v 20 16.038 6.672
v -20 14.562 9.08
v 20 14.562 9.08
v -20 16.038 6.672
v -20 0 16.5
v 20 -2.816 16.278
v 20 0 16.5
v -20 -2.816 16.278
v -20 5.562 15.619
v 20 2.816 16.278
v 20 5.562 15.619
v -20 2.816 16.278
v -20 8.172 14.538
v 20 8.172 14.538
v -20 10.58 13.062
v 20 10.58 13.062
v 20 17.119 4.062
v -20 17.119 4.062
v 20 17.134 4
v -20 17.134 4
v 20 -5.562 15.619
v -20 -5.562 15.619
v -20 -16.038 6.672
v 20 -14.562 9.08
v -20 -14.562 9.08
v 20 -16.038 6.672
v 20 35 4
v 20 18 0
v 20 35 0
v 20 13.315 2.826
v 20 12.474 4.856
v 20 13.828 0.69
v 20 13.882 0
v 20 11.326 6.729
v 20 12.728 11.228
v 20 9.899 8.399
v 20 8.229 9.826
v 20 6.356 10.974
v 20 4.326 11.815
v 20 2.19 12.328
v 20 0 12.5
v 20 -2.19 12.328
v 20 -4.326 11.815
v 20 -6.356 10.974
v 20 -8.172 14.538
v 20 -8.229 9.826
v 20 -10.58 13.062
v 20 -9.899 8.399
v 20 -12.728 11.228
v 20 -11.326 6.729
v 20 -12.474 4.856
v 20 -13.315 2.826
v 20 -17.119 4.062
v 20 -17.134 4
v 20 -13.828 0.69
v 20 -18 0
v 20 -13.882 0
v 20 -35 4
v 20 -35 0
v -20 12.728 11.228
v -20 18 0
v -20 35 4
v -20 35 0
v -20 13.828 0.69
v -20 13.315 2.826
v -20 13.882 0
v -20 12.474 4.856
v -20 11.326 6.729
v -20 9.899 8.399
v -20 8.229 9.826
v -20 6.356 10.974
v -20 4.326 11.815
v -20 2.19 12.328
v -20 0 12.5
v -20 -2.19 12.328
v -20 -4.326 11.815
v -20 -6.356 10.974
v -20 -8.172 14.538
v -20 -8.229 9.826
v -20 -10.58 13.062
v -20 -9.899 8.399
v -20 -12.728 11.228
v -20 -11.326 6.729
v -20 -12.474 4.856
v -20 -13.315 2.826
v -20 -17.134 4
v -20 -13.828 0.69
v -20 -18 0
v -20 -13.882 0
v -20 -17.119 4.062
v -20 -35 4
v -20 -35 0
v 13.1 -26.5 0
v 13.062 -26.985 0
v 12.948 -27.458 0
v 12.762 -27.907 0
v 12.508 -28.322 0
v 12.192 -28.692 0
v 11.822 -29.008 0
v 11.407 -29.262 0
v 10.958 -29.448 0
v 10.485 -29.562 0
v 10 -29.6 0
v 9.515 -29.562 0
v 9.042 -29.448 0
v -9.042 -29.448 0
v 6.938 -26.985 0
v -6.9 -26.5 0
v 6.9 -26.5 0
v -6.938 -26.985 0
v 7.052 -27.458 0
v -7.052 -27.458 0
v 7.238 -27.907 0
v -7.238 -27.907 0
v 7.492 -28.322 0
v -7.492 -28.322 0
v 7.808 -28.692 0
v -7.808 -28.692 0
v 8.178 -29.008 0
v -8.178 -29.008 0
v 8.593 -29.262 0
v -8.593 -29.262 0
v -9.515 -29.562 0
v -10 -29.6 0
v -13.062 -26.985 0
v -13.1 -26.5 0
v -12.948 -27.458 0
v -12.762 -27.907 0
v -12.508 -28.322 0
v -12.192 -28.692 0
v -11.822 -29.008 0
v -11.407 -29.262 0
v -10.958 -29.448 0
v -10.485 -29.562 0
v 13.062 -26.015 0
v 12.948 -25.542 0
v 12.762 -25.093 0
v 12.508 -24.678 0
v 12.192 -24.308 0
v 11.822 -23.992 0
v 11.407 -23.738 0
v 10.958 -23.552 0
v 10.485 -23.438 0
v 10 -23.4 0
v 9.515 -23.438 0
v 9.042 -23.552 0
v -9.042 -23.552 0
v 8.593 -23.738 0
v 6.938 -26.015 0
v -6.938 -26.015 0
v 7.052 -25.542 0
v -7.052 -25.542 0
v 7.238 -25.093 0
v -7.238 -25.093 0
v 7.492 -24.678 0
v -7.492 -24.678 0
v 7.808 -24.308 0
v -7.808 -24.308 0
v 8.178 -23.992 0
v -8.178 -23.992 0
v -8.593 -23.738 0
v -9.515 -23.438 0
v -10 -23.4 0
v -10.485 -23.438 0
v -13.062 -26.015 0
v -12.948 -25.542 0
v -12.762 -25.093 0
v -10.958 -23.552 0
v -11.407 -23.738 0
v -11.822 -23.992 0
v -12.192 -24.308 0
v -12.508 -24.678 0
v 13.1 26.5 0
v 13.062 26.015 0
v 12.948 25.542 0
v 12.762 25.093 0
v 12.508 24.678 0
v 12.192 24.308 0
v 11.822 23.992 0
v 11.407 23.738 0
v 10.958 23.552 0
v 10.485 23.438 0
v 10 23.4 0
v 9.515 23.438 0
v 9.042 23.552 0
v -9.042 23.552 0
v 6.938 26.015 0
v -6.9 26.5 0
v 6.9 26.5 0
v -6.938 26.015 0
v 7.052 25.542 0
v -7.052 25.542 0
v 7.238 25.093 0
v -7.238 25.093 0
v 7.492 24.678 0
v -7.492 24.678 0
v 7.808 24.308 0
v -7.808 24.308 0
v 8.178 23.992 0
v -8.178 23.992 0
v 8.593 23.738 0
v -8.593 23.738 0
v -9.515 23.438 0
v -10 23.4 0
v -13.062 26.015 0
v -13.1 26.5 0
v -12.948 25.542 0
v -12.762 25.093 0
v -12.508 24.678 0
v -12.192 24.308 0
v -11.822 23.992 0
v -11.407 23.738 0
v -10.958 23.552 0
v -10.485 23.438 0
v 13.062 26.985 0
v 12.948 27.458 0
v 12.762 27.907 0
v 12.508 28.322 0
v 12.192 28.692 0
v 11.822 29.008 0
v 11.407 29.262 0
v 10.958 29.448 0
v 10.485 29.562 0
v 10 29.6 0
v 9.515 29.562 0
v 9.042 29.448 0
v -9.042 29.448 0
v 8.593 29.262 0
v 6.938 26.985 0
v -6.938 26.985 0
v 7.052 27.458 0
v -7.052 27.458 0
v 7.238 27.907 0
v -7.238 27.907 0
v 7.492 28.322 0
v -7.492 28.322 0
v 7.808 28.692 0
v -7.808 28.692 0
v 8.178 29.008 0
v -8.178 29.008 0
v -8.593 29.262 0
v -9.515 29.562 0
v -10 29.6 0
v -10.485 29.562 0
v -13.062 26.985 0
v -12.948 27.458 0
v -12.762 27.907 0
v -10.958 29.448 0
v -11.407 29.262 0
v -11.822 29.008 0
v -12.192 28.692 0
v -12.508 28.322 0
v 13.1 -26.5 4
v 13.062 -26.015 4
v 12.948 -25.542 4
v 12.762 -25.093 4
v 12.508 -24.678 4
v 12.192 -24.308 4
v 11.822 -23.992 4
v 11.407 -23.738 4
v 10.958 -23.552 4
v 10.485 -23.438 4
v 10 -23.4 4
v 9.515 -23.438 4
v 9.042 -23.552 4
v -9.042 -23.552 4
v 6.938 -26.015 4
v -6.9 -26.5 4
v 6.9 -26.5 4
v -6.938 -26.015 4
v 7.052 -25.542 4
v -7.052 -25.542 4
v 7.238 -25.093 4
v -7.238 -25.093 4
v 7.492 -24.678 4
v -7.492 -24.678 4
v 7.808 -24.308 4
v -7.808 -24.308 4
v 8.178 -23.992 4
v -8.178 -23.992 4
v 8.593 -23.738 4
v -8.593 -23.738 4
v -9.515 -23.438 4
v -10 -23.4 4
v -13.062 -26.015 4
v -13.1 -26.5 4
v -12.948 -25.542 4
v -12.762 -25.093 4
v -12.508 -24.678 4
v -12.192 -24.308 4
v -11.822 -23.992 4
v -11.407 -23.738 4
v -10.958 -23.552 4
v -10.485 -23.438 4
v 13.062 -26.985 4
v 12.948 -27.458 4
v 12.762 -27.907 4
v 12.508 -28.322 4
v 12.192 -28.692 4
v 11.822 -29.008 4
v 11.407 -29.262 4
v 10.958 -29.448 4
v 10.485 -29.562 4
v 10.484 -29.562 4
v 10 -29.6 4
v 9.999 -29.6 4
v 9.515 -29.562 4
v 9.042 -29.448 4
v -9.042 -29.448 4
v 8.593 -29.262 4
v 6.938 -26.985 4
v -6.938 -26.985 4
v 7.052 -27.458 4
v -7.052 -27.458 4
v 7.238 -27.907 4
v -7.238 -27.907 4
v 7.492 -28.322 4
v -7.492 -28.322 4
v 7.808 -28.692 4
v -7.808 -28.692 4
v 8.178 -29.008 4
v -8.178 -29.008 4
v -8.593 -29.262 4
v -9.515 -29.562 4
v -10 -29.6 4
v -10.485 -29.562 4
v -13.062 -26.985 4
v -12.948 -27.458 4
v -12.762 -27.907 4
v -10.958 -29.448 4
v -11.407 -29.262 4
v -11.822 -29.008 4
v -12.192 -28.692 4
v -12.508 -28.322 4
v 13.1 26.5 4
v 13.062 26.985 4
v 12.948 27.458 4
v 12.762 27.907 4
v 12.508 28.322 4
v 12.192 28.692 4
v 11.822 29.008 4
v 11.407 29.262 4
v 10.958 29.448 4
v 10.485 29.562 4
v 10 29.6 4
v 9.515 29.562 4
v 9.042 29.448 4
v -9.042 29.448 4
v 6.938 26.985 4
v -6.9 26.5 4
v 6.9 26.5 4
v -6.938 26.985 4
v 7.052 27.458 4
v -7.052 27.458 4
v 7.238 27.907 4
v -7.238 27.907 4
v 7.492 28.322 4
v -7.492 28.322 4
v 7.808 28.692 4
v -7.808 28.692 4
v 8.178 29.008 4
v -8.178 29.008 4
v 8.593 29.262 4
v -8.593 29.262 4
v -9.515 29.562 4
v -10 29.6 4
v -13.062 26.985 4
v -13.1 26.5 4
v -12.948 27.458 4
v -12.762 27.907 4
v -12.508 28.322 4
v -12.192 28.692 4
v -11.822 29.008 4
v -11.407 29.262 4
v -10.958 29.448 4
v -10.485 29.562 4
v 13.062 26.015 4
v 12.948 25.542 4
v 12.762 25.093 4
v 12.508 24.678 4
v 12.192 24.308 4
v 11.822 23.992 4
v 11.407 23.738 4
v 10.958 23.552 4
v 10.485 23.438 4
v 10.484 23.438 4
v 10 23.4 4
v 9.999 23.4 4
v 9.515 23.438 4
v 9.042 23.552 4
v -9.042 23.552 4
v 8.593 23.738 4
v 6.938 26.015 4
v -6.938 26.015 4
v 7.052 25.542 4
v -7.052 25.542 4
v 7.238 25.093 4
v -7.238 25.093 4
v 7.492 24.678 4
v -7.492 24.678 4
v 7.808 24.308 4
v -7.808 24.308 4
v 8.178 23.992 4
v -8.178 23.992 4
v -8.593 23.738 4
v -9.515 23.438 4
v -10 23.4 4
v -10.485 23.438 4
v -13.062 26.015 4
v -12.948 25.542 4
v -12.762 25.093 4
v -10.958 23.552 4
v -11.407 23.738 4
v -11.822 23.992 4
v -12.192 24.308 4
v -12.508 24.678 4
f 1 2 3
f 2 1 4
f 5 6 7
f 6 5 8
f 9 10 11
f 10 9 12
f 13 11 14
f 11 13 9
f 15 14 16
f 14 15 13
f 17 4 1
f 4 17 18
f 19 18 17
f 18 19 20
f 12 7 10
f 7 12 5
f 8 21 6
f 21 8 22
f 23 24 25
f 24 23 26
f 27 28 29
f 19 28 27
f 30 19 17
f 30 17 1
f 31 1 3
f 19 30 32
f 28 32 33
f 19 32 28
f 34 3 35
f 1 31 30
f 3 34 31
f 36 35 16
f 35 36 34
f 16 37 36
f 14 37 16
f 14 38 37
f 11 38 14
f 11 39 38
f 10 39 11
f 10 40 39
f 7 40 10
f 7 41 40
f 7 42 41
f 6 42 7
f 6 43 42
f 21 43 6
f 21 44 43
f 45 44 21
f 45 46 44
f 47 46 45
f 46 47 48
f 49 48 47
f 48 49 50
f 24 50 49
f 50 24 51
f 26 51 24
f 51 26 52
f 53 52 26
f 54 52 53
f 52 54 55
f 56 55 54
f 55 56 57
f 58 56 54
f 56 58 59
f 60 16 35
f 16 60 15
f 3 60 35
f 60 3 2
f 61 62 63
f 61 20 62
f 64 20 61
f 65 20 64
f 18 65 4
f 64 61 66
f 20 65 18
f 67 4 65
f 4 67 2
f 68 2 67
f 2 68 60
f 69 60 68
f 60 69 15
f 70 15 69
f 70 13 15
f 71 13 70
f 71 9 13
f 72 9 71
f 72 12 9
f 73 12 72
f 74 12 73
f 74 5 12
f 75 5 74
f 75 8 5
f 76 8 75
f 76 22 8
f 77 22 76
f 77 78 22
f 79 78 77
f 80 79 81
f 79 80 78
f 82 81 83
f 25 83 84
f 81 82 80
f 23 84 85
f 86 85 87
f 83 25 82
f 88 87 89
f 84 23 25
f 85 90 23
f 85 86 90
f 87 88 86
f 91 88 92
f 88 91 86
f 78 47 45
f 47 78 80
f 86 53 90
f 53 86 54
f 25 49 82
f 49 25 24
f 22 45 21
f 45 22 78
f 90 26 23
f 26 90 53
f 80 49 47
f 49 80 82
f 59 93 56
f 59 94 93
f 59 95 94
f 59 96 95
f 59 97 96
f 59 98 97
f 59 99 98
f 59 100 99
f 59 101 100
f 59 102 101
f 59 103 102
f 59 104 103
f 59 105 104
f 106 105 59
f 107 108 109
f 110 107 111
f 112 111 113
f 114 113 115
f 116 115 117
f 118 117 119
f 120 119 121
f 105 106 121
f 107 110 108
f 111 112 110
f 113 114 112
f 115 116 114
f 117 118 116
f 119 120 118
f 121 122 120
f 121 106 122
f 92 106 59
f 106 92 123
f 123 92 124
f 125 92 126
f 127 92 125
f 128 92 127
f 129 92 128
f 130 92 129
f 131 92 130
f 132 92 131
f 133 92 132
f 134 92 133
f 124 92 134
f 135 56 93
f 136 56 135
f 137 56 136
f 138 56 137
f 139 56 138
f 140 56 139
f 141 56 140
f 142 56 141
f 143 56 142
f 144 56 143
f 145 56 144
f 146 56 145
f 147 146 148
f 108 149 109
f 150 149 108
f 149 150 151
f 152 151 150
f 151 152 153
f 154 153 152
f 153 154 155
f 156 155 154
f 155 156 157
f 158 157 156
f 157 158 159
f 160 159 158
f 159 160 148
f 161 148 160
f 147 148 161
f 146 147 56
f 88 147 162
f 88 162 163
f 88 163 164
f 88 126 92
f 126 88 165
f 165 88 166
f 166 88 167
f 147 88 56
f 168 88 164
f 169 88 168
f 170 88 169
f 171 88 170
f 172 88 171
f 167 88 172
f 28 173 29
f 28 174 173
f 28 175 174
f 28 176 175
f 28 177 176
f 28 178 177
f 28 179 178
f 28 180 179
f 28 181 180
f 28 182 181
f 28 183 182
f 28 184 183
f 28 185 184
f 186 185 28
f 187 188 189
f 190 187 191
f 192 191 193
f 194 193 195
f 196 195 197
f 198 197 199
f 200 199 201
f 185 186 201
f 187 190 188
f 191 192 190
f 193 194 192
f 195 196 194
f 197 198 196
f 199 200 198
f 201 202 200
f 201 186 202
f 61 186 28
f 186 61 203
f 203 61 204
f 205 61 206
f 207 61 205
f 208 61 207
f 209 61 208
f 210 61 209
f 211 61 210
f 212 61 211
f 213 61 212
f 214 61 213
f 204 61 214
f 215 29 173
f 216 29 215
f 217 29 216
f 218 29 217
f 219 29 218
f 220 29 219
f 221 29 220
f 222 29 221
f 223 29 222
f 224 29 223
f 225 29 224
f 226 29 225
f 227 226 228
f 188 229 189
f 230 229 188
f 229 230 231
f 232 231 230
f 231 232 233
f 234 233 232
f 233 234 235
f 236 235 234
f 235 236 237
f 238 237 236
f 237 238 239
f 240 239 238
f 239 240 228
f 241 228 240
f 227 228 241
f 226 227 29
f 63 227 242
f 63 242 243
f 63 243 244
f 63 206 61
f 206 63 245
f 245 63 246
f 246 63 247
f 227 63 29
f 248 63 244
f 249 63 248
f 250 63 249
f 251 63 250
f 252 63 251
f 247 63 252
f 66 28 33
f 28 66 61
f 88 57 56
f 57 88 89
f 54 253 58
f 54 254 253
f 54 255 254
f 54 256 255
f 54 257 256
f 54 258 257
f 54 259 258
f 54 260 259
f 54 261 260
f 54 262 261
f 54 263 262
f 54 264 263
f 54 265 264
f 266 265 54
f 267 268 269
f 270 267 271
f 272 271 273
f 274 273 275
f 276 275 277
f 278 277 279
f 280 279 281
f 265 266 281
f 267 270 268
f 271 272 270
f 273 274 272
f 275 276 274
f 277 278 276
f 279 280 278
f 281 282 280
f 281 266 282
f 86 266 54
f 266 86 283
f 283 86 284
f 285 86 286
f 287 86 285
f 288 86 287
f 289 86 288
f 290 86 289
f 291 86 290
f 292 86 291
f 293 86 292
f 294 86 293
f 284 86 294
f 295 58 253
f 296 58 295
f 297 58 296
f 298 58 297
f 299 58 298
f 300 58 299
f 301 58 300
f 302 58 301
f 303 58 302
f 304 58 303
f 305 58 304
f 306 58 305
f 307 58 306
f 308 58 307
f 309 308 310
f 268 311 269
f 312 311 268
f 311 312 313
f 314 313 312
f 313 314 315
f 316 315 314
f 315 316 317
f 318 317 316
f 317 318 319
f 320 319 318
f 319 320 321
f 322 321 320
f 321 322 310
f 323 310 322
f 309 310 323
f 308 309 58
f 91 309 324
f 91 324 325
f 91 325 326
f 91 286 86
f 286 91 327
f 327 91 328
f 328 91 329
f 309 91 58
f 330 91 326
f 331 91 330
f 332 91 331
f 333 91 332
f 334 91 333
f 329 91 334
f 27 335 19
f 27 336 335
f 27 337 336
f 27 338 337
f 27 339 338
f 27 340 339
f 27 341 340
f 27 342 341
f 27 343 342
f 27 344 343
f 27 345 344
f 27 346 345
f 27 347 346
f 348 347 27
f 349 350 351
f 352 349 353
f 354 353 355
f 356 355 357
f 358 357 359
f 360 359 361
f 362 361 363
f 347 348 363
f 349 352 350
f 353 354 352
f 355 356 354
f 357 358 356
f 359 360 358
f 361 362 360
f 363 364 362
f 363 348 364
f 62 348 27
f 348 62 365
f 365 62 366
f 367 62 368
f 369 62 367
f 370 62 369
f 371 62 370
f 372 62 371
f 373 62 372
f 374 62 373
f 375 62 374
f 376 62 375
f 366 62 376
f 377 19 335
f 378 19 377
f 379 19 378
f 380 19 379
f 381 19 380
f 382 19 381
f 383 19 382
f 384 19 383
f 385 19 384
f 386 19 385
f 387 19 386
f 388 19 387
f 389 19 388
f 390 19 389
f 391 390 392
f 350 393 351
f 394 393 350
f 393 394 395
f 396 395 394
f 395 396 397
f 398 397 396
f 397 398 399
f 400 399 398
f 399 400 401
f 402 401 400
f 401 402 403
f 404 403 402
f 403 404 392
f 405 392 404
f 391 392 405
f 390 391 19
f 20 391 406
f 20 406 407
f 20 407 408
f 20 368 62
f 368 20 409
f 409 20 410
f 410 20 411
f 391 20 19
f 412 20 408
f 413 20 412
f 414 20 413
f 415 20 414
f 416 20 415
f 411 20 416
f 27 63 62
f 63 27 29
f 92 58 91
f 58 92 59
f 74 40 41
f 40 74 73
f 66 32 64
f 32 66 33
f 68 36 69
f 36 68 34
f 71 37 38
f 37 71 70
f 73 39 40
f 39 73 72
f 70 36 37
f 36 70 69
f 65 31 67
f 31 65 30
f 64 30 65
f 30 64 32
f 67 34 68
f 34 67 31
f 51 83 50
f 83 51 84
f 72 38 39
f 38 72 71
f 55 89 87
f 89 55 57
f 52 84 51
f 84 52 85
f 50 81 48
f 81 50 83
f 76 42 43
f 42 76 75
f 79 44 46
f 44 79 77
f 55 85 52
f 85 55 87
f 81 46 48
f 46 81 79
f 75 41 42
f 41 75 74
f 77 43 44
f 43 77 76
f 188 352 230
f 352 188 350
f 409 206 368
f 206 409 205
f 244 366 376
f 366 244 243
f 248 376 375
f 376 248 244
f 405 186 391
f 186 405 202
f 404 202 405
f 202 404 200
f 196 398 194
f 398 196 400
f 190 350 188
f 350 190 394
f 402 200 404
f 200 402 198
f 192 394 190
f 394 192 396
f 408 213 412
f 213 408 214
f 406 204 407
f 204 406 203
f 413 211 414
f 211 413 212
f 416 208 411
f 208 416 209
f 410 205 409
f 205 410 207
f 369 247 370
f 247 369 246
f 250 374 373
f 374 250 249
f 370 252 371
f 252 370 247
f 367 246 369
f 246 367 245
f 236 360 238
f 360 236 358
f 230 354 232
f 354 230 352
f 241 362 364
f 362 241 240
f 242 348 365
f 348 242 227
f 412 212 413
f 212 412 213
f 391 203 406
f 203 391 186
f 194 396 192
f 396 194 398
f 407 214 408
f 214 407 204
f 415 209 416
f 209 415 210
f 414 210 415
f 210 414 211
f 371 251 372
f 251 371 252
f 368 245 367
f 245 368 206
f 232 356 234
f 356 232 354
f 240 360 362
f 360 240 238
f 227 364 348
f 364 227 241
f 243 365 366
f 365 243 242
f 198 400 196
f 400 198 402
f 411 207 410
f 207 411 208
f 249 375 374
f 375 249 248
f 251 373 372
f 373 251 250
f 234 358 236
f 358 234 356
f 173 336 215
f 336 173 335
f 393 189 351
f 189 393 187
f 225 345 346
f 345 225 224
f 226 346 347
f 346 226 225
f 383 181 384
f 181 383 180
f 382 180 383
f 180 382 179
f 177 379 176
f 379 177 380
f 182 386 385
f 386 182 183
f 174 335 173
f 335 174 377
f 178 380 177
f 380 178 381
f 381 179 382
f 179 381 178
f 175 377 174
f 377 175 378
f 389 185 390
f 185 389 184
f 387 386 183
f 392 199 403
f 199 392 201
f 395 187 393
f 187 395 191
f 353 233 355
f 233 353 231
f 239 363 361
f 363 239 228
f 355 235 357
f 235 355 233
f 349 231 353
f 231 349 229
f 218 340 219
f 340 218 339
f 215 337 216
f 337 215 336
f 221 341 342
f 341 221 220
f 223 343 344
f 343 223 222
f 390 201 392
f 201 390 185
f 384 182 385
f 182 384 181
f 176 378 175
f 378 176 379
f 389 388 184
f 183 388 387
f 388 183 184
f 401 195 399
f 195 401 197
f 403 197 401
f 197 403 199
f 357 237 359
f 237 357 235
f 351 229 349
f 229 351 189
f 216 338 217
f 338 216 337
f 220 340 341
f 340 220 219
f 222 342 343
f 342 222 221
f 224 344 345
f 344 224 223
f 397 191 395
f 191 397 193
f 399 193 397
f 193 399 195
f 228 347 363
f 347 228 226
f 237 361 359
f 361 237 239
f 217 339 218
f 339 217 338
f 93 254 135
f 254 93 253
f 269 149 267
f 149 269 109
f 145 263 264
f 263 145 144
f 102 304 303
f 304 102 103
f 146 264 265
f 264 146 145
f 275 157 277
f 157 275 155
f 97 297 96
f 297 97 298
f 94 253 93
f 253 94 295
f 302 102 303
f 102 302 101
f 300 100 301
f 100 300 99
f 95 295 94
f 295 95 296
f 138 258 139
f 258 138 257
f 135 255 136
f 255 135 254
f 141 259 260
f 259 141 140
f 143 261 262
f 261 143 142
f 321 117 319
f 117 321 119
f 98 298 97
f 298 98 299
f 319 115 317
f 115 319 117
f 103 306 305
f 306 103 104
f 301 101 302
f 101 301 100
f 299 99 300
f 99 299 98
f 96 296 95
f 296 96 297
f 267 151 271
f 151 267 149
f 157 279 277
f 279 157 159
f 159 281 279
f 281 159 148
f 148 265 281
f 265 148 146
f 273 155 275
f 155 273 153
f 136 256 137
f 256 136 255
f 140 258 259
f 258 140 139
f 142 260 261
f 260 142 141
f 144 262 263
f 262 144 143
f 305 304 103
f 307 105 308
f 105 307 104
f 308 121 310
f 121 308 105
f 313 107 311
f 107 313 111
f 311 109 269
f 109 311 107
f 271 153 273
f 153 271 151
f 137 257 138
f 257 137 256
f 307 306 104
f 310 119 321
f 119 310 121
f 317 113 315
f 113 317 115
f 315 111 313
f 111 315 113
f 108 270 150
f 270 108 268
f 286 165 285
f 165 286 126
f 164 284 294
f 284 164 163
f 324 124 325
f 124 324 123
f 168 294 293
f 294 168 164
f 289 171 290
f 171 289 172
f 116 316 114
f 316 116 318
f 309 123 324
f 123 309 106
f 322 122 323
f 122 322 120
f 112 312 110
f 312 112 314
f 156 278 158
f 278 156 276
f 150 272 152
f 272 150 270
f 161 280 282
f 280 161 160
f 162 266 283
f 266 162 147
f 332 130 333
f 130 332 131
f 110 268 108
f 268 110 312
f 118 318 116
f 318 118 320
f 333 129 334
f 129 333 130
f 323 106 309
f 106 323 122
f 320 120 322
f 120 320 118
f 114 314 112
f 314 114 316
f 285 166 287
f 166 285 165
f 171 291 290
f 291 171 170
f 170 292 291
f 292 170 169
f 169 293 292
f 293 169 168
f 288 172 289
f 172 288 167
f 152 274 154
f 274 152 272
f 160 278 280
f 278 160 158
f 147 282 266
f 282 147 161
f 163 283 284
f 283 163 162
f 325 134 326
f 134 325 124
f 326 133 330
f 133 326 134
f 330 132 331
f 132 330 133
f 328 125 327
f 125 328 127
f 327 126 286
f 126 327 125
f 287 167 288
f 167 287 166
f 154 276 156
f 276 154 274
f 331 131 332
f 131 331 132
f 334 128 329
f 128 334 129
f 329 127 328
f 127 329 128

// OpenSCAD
// file: ../SRC/WINDGAUGE02A_D02.scad
$fn=40; // model faces resolution.
include <../configuration.scad>



module WINDGAUGE02A_D02(){
	
		difference(){
			union(){
                
                //základní válec
                    cylinder(h=D02_vyska_uchytky,r=(D02_prumer_obruby+2*D02_sila_materialu)/2,center=true);
				//úchytové plošky		
					translate([D02_dotahova_vzdalenost+D02_sila_materialu/2,0,0]){cube([D02_sila_materialu,D02_delka_celeho_uchytu,D02_vyska_uchytky],center=true);}
					
				}
                //válec na odečet
           cylinder(h=D02_vyska_uchytky+0.01,r=D02_prumer_obruby/2,center=true);     
			
            
            //kvádr na odecet
			translate([D02_dotahova_vzdalenost-(D02_prumer_obruby+2*D02_sila_materialu)/2,0,0]){cube([D02_prumer_obruby+2*D02_sila_materialu,D02_prumer_obruby+2*D02_sila_materialu,D02_vyska_uchytky+0.01],center=true);}
		
	//otvory na sroub
		translate([D02_dotahova_vzdalenost,(D02_delka_celeho_uchytu/2-D02_prumer_obruby/2-D02_sila_materialu)/2+D02_prumer_obruby/2+D02_sila_materialu,D02_vyska_uchytky/4]){rotate([0,90,0]){cylinder(h=D02_sila_materialu+0.01,r=D02_prumer_uchytneho_sroubu/2);}}
        
        		translate([D02_dotahova_vzdalenost,(D02_delka_celeho_uchytu/2-D02_prumer_obruby/2-D02_sila_materialu)/2+D02_prumer_obruby/2+D02_sila_materialu,-D02_vyska_uchytky/4]){rotate([0,90,0]){cylinder(h=D02_sila_materialu+0.01,r=D02_prumer_uchytneho_sroubu/2);}}
        
	translate([D02_dotahova_vzdalenost,-((D02_delka_celeho_uchytu/2-D02_prumer_obruby/2-D02_sila_materialu)/2+D02_prumer_obruby/2+D02_sila_materialu),-D02_vyska_uchytky/4]){rotate([0,90,0]){cylinder(h=D02_sila_materialu+0.01,r=D02_prumer_uchytneho_sroubu/2);}}

translate([D02_dotahova_vzdalenost,-((D02_delka_celeho_uchytu/2-D02_prumer_obruby/2-D02_sila_materialu)/2+D02_prumer_obruby/2+D02_sila_materialu),D02_vyska_uchytky/4]){rotate([0,90,0]){cylinder(h=D02_sila_materialu+0.01,r=D02_prumer_uchytneho_sroubu/2);}}	
		
	
}
}
// file: ../configuration.scad
$fn=40; // model faces resolution.

//OBECNE PARAMETRY 
//----------------------------------------------------------------
//----------------------------------------------------------------

//Obecné parametry
prumer_osicky=3;
prumer_pomocne_trubicky=8;
zapusteni_pomocne_trubicky=3;
vule_mezi_statorem_rotorem=2; //vůle mezi statorem a rotorem + sila materialu statoru

//rozmery modulu se senzorem
senzor_delka=20.32;
senzor_sirka=10.16;


//lozisko
lozisko_prumer_vnitrni=5;
lozisko_prumer_vnejsi=16;
lozisko_vyska=5;
lozisko_prekryv=1.5;


//parametry sroubu
prumer_sroubu=3.2;
prumer_hlavy_sroubu=6;
vyska_hlavy_sroubu=4;
vyska_matky=3;
sirka_matky=6.6;
sirka_matky_tol=0.175;
prumer_orechu=10;


//WINDGAUGE02A_S01
S01_vyska=5;



//WINDGAUGE02A_L01 //pro lopatku
L01_hloubka_zapusteni=3;
L01_hloubka_zapusteni_drzaku=5;
L01_sila_zapusteni_drzaku=5; //sila drzaku který je v rotoru
L01_hrana_drzaku_a=10;
L01_hrana_drzaku_b=3;
L01_tolerance_drzaku=0.1;
L01_delka_uchytu=20;
L01_prumer_lopatky=40;
L01_sila_materialu_lopatky=3;

//WINDGAUGE02A_D01 //uchyt velky
D01_material_pod_zavitem=10;
D01_material_za_zavitem=5;
D01_material_pred_zavitem=5;
D01_delka_tyce=40;
D01_sirka_tyce=20;



//WINDGAUGE02A_D02 //uchyt na sloup
D02_sila_materialu=4;
D02_vyska_uchytky=40;
D02_prumer_obruby=28;
D02_delka_celeho_uchytu=70;
D02_dotahova_vzdalenost=1.5;
D02_prumer_uchytneho_sroubu=6.2;





//WINDGAUGE02A_R01 //rotor s prekritim statoru
R01_vyska_preryti_statoru=10;
R01_sila_materialu_pro_prekriti=2;

//WINDGAUGE02A_R02 //rotor spodni dil

R02_sila_mateiralu_pod_lopatkami=5;
R02_vzdalenost_mezi_uchyty_lopatek=10;

//WINDGAUGE02A_R03 //kryt rotoru
R03_sila_materialu=1.5;



//WINDGAUGE02A_S01 //stator
S01_sila_materialu=2;
S01_vyska_zuzene_casti=20;
S01_vyska_komponentu_na_lozisko=15;
S01_vyska_zavitu_na_nasroubovani_drzaku=15;
S01_vyska_na_elektroniku=50;
S01_prumer_zavitu=70;
S01_vyska_prechodu=20;











//kryt rotoru
sila_materialu_krytu=1;


//stator1
stator1_sila=2;

//stator2
sila_pod_loziskem=1;

//stator3
stator3_sila_steny=2;
stator3_vzdalenost_od_steny=1; //definuje vzdalenost hlavy sroubu od steny statrou 4
stator3_vyska=60;
stator3_vyska_prekryti=10;

//uchyt pro anemometr
uchyt_prumer_sroubu=3.2;
roztec_sroubu=10.16;


//nastevní rotoru2

vzdalenost_rot_stat=2; //vzdálenost mezi statorem a rotorem uvnitř(osa Z)
vzdalenost_rot_stat2=1.5;//vzdálenost mezi statorem a rotorem (osa Z)





//lopatka
hloubka_uchytu=20;
sila_uchytu=12;
vyska_uchytu=10;
tolerance_uchytu=0.2;
delka_uchytu_lopatky=20;
hrana_uchytu_lopatky=4; 
prumer_lopatky=50;
sila_materialu_lopatky=0.8;

//parametry uchytu senzoru
roztec_der=10.16;
vzdalenost_der_x=2*roztec_der;
vzdalenost_der_y=1*roztec_der;

//magnet
magnet_prumer=6.3;
magnet_vyska=5;
magnet_zapusteni=2;
vyska_pod_magnetem=5;

//rotor2
delka_hridele=5; //delka hridele koukající ve statoru

//rotor2
vyska_kryti=stator1_sila+vyska_matky+vzdalenost_rot_stat+stator3_vyska_prekryti-vzdalenost_rot_stat2; //udává výšku krycího prstence


vule1=1.5; //vůle mezi statorem a rotorem ze vnitř (z boku)




//uchyt pro anemometr
uchyt_prumer_sroubu=3.2;
roztec_sroubu=20;

//stator 4
vyska_stator4=5;
uchyt_vyska_matky=3;
uchyt_prumer_orechu=10;

//parametr kabelu
kabel_prumer=10;
// main file
$fn=100; // model faces resolution.
include <../configuration.scad>
use <../SRC/WINDGAUGE02A_D02.scad>

rotate([0, -90, 0])
translate([-D02_dotahova_vzdalenost,0,0])

WINDGAUGE02A_D02(D02_sila_materialu,
D02_vyska_uchytky,
D02_prumer_obruby,
D02_delka_celeho_uchytu,
D02_dotahova_vzdalenost,
D02_prumer_uchytneho_sroubu);

            
